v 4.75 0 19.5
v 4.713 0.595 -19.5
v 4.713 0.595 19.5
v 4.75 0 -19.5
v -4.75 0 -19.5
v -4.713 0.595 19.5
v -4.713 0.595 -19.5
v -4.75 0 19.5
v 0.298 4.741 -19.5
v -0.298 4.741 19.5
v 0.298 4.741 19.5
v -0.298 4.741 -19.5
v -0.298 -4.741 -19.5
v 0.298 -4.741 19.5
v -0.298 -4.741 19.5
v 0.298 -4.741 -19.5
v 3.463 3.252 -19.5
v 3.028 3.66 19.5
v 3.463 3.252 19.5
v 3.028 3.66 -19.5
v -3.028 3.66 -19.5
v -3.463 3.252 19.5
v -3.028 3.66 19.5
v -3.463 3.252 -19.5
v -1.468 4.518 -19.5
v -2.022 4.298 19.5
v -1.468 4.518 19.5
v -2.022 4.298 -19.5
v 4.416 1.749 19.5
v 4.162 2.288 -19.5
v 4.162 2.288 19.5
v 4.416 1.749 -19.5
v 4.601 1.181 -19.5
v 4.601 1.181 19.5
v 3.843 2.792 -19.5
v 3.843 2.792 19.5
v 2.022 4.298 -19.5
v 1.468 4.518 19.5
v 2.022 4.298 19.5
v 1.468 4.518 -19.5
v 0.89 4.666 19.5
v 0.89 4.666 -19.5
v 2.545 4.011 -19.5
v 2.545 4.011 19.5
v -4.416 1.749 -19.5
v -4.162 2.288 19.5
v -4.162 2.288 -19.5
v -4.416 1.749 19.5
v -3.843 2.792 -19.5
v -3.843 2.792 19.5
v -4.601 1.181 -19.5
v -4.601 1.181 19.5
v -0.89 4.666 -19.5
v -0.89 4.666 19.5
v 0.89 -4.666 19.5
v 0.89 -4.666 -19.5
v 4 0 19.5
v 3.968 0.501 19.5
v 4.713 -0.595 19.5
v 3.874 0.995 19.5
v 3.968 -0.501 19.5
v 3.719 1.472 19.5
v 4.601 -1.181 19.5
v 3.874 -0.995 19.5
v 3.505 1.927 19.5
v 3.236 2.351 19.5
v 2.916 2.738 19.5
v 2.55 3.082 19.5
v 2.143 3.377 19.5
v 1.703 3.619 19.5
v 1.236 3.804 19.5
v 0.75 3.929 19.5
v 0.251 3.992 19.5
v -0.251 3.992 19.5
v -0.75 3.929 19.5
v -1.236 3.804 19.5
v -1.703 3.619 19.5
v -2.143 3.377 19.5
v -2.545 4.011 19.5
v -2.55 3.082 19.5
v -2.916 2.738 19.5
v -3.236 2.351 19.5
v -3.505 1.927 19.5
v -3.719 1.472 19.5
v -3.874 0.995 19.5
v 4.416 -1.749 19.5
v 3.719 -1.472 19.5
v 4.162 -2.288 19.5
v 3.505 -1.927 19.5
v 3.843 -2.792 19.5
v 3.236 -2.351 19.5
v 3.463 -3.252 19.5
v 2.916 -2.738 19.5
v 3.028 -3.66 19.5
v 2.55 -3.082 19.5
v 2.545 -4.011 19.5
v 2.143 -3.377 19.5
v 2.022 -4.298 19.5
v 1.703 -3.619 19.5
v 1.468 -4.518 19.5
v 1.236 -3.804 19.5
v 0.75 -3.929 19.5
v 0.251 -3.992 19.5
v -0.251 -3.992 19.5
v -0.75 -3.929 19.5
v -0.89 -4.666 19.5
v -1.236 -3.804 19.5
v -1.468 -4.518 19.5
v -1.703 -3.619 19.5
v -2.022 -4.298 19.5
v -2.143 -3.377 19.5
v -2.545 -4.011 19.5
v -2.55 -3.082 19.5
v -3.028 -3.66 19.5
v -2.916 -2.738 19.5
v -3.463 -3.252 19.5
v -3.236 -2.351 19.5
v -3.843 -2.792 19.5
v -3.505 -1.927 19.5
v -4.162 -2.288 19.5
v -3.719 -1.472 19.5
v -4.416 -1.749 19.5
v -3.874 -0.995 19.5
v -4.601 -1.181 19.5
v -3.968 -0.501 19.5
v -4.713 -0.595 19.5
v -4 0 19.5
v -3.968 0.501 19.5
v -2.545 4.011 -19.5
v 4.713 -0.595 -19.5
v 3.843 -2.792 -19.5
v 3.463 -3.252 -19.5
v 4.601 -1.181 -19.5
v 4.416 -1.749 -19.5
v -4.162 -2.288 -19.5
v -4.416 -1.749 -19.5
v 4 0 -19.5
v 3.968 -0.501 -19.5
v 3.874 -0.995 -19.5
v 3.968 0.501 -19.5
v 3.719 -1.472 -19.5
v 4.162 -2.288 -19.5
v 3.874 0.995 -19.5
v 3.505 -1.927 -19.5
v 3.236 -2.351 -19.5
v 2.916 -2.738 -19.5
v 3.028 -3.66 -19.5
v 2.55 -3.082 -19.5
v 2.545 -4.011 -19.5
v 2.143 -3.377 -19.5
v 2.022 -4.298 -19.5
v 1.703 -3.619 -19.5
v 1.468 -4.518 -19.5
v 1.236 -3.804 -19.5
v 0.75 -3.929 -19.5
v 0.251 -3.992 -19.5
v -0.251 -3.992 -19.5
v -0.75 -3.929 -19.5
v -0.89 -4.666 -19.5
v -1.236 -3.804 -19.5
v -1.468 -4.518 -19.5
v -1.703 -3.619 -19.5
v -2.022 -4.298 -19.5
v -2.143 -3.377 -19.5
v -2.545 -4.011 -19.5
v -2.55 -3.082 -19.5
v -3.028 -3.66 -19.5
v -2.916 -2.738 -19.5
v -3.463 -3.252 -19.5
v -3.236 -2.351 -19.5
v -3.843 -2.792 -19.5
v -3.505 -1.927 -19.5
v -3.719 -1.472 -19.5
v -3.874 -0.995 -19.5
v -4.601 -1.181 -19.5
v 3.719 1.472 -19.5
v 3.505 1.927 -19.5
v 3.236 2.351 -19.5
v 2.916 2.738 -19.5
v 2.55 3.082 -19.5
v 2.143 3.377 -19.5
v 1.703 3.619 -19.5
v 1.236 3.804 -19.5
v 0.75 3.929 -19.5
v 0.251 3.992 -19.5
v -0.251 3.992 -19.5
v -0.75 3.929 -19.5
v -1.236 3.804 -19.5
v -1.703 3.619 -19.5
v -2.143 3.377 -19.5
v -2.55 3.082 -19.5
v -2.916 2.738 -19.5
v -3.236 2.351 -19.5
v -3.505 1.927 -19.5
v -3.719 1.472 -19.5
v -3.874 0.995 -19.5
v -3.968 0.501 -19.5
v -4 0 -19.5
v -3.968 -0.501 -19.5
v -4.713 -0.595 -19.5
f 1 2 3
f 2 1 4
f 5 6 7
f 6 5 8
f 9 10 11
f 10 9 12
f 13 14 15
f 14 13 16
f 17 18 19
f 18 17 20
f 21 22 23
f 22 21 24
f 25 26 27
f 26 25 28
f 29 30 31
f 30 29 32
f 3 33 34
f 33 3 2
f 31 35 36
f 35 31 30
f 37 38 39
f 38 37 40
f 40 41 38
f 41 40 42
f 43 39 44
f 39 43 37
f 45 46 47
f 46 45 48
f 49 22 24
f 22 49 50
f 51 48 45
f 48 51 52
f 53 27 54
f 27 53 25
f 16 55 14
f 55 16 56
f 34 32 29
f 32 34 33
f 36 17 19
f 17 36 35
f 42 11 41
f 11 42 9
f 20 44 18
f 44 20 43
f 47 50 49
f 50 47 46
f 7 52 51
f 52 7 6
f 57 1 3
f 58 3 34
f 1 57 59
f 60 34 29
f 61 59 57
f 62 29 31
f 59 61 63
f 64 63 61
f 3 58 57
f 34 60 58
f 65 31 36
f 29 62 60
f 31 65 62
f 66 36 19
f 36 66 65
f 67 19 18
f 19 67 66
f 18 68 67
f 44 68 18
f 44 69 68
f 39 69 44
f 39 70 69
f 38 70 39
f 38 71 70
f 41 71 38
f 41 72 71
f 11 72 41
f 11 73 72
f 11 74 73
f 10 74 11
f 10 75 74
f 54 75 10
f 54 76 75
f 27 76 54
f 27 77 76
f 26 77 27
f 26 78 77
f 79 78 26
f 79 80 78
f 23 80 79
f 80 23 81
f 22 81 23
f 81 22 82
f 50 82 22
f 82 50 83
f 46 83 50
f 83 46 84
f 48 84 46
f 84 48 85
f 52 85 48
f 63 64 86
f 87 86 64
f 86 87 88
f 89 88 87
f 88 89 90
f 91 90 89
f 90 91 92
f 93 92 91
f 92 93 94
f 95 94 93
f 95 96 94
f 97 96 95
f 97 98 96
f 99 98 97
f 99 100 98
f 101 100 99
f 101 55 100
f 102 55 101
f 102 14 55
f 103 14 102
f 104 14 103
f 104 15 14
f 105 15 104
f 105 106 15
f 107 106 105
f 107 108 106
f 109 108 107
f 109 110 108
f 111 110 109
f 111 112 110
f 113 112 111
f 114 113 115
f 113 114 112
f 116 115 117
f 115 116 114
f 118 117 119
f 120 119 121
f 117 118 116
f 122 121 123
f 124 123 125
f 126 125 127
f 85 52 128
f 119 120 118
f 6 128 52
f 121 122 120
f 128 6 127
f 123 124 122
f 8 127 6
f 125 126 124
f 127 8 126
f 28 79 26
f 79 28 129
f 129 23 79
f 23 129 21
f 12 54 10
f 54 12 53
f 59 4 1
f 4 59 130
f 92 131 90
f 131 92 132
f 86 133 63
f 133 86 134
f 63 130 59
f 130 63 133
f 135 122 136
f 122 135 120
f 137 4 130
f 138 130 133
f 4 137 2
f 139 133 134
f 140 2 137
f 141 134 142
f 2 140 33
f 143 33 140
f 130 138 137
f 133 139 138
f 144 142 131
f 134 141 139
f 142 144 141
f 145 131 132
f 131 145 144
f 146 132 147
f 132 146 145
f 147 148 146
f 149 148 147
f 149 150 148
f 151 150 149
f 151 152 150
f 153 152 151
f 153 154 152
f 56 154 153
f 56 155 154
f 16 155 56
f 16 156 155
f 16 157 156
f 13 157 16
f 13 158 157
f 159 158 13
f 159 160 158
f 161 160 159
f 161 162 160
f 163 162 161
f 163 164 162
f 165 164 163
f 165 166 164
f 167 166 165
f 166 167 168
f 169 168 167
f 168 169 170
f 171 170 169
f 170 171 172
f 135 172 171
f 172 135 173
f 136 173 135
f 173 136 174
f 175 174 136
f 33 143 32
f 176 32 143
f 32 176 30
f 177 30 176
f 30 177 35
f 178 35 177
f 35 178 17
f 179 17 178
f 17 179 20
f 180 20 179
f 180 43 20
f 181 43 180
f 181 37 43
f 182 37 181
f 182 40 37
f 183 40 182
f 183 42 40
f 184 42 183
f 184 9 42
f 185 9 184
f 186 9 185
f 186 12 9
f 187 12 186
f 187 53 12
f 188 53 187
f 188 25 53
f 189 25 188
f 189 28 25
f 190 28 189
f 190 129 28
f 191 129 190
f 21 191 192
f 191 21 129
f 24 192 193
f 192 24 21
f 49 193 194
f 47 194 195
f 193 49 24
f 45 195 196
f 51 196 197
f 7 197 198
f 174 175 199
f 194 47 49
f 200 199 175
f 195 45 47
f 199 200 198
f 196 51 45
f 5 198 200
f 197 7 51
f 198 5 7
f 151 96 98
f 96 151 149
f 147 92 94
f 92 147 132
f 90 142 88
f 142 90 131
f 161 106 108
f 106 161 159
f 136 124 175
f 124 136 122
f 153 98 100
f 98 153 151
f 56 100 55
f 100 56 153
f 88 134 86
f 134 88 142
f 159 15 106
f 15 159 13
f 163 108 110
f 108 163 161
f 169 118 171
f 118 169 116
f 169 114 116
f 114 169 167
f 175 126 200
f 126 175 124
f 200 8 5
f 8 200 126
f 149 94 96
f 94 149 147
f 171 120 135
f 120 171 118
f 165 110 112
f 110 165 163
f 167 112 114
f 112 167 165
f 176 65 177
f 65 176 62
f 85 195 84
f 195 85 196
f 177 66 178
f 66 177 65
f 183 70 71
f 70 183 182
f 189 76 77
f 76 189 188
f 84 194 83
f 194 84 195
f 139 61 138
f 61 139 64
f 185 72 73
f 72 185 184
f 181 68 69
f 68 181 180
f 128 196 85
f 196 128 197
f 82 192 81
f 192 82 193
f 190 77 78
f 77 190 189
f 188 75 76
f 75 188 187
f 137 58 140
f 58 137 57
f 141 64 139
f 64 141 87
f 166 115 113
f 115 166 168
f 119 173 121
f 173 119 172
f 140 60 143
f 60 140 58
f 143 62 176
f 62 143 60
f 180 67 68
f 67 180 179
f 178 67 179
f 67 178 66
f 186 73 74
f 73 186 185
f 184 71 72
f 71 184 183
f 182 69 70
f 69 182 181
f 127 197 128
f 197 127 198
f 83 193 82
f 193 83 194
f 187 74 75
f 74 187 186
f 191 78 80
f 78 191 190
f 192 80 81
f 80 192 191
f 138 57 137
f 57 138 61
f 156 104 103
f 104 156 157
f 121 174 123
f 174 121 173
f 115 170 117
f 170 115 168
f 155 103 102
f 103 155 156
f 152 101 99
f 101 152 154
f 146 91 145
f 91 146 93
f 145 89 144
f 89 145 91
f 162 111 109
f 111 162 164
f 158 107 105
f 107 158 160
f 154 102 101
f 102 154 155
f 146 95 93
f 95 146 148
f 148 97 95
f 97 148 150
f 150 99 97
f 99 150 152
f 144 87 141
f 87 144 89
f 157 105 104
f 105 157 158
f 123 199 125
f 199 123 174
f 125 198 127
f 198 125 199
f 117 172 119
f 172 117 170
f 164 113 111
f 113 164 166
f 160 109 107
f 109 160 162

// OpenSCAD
$fn = 50;


difference() {
	union() {
		translate(v = [0, 0, -19.5000000000]) {
			cylinder(h = 39, r = 4.7500000000);
		}
	}
	union() {
		translate(v = [0, 0, -100.0000000000]) {
			cylinder(h = 200, r = 4.0000000000);
		}
	}
}
